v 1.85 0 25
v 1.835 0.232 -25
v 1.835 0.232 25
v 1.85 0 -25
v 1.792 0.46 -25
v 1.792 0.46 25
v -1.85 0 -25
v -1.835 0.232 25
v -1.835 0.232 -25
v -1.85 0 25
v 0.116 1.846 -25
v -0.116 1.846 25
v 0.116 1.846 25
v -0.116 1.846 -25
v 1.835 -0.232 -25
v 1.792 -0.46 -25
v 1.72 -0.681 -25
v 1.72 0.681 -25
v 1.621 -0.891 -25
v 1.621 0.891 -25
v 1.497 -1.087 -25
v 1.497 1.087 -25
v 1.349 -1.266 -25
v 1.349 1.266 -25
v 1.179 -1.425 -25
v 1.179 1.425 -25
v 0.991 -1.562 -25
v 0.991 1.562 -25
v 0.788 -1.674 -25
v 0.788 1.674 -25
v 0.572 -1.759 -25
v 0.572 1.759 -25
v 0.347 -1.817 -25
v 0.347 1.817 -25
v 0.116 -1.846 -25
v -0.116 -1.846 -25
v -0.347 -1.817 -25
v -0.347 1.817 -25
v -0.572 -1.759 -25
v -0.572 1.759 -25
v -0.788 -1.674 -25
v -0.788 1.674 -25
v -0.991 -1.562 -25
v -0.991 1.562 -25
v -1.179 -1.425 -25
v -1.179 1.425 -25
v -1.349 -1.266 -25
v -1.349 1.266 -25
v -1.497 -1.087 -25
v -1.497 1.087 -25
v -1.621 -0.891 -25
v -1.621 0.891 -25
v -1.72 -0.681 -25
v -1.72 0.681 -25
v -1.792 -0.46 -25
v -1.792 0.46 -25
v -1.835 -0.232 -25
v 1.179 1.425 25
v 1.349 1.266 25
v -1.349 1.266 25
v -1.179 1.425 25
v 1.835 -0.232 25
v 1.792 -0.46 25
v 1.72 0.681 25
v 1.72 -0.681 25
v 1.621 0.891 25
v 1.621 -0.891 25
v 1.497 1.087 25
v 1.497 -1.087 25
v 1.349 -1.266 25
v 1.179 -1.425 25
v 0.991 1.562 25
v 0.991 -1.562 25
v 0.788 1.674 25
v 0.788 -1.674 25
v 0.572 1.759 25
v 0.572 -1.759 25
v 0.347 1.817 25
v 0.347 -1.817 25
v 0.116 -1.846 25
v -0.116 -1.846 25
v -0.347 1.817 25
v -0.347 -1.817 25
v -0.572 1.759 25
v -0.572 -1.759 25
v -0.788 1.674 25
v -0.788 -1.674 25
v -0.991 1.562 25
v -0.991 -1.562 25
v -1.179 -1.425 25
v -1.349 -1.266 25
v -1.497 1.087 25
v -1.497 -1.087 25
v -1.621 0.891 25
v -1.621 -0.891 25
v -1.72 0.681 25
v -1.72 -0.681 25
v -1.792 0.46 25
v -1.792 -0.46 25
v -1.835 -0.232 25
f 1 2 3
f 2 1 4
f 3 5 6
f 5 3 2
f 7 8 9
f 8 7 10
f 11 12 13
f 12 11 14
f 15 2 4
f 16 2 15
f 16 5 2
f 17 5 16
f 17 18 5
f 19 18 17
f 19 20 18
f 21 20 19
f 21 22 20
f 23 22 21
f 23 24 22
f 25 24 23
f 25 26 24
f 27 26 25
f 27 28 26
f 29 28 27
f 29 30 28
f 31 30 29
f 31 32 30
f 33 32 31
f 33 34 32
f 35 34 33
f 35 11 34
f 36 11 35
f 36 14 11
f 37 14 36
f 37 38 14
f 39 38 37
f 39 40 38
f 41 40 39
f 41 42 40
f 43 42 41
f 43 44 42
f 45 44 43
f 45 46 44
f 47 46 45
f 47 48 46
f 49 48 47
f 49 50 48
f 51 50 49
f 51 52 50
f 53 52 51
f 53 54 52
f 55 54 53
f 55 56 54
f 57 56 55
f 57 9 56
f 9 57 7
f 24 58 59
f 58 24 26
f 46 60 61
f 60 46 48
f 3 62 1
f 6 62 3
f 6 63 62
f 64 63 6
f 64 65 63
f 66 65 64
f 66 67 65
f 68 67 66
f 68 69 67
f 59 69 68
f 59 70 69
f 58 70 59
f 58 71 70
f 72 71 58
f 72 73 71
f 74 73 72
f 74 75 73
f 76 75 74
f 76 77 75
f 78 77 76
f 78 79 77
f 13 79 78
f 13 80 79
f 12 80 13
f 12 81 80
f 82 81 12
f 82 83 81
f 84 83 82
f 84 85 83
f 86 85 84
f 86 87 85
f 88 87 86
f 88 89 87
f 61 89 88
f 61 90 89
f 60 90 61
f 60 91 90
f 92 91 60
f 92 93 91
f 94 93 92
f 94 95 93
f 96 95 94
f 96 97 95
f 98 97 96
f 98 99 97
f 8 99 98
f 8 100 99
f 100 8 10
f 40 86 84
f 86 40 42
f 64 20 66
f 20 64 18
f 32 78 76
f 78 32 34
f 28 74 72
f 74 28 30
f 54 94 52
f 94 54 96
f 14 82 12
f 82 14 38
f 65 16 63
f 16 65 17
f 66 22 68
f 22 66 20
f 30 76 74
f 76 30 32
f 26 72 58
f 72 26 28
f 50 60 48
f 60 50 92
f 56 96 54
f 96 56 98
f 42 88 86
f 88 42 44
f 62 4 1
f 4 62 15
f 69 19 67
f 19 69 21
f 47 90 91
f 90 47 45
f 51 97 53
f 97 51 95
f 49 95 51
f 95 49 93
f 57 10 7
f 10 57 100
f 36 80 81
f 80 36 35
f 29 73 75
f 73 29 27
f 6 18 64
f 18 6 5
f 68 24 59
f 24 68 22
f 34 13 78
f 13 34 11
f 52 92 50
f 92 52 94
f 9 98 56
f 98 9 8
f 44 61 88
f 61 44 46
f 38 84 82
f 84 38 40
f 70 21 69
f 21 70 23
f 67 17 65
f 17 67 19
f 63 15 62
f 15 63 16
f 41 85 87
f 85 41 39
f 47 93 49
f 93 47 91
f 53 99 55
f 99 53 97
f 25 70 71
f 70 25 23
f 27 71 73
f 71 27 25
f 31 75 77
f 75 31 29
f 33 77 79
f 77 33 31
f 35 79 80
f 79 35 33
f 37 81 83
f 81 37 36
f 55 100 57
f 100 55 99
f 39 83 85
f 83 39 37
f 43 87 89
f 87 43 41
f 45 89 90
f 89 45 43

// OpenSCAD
$fn = 50;


difference() {
	union() {
		translate(v = [0, 0, -25.0000000000]) {
			cylinder(h = 50, r = 1.8500000000);
		}
	}
	union() {
		translate(v = [0, 0, -100.0000000000]) {
			cylinder(h = 200, r = 0);
		}
	}
}
